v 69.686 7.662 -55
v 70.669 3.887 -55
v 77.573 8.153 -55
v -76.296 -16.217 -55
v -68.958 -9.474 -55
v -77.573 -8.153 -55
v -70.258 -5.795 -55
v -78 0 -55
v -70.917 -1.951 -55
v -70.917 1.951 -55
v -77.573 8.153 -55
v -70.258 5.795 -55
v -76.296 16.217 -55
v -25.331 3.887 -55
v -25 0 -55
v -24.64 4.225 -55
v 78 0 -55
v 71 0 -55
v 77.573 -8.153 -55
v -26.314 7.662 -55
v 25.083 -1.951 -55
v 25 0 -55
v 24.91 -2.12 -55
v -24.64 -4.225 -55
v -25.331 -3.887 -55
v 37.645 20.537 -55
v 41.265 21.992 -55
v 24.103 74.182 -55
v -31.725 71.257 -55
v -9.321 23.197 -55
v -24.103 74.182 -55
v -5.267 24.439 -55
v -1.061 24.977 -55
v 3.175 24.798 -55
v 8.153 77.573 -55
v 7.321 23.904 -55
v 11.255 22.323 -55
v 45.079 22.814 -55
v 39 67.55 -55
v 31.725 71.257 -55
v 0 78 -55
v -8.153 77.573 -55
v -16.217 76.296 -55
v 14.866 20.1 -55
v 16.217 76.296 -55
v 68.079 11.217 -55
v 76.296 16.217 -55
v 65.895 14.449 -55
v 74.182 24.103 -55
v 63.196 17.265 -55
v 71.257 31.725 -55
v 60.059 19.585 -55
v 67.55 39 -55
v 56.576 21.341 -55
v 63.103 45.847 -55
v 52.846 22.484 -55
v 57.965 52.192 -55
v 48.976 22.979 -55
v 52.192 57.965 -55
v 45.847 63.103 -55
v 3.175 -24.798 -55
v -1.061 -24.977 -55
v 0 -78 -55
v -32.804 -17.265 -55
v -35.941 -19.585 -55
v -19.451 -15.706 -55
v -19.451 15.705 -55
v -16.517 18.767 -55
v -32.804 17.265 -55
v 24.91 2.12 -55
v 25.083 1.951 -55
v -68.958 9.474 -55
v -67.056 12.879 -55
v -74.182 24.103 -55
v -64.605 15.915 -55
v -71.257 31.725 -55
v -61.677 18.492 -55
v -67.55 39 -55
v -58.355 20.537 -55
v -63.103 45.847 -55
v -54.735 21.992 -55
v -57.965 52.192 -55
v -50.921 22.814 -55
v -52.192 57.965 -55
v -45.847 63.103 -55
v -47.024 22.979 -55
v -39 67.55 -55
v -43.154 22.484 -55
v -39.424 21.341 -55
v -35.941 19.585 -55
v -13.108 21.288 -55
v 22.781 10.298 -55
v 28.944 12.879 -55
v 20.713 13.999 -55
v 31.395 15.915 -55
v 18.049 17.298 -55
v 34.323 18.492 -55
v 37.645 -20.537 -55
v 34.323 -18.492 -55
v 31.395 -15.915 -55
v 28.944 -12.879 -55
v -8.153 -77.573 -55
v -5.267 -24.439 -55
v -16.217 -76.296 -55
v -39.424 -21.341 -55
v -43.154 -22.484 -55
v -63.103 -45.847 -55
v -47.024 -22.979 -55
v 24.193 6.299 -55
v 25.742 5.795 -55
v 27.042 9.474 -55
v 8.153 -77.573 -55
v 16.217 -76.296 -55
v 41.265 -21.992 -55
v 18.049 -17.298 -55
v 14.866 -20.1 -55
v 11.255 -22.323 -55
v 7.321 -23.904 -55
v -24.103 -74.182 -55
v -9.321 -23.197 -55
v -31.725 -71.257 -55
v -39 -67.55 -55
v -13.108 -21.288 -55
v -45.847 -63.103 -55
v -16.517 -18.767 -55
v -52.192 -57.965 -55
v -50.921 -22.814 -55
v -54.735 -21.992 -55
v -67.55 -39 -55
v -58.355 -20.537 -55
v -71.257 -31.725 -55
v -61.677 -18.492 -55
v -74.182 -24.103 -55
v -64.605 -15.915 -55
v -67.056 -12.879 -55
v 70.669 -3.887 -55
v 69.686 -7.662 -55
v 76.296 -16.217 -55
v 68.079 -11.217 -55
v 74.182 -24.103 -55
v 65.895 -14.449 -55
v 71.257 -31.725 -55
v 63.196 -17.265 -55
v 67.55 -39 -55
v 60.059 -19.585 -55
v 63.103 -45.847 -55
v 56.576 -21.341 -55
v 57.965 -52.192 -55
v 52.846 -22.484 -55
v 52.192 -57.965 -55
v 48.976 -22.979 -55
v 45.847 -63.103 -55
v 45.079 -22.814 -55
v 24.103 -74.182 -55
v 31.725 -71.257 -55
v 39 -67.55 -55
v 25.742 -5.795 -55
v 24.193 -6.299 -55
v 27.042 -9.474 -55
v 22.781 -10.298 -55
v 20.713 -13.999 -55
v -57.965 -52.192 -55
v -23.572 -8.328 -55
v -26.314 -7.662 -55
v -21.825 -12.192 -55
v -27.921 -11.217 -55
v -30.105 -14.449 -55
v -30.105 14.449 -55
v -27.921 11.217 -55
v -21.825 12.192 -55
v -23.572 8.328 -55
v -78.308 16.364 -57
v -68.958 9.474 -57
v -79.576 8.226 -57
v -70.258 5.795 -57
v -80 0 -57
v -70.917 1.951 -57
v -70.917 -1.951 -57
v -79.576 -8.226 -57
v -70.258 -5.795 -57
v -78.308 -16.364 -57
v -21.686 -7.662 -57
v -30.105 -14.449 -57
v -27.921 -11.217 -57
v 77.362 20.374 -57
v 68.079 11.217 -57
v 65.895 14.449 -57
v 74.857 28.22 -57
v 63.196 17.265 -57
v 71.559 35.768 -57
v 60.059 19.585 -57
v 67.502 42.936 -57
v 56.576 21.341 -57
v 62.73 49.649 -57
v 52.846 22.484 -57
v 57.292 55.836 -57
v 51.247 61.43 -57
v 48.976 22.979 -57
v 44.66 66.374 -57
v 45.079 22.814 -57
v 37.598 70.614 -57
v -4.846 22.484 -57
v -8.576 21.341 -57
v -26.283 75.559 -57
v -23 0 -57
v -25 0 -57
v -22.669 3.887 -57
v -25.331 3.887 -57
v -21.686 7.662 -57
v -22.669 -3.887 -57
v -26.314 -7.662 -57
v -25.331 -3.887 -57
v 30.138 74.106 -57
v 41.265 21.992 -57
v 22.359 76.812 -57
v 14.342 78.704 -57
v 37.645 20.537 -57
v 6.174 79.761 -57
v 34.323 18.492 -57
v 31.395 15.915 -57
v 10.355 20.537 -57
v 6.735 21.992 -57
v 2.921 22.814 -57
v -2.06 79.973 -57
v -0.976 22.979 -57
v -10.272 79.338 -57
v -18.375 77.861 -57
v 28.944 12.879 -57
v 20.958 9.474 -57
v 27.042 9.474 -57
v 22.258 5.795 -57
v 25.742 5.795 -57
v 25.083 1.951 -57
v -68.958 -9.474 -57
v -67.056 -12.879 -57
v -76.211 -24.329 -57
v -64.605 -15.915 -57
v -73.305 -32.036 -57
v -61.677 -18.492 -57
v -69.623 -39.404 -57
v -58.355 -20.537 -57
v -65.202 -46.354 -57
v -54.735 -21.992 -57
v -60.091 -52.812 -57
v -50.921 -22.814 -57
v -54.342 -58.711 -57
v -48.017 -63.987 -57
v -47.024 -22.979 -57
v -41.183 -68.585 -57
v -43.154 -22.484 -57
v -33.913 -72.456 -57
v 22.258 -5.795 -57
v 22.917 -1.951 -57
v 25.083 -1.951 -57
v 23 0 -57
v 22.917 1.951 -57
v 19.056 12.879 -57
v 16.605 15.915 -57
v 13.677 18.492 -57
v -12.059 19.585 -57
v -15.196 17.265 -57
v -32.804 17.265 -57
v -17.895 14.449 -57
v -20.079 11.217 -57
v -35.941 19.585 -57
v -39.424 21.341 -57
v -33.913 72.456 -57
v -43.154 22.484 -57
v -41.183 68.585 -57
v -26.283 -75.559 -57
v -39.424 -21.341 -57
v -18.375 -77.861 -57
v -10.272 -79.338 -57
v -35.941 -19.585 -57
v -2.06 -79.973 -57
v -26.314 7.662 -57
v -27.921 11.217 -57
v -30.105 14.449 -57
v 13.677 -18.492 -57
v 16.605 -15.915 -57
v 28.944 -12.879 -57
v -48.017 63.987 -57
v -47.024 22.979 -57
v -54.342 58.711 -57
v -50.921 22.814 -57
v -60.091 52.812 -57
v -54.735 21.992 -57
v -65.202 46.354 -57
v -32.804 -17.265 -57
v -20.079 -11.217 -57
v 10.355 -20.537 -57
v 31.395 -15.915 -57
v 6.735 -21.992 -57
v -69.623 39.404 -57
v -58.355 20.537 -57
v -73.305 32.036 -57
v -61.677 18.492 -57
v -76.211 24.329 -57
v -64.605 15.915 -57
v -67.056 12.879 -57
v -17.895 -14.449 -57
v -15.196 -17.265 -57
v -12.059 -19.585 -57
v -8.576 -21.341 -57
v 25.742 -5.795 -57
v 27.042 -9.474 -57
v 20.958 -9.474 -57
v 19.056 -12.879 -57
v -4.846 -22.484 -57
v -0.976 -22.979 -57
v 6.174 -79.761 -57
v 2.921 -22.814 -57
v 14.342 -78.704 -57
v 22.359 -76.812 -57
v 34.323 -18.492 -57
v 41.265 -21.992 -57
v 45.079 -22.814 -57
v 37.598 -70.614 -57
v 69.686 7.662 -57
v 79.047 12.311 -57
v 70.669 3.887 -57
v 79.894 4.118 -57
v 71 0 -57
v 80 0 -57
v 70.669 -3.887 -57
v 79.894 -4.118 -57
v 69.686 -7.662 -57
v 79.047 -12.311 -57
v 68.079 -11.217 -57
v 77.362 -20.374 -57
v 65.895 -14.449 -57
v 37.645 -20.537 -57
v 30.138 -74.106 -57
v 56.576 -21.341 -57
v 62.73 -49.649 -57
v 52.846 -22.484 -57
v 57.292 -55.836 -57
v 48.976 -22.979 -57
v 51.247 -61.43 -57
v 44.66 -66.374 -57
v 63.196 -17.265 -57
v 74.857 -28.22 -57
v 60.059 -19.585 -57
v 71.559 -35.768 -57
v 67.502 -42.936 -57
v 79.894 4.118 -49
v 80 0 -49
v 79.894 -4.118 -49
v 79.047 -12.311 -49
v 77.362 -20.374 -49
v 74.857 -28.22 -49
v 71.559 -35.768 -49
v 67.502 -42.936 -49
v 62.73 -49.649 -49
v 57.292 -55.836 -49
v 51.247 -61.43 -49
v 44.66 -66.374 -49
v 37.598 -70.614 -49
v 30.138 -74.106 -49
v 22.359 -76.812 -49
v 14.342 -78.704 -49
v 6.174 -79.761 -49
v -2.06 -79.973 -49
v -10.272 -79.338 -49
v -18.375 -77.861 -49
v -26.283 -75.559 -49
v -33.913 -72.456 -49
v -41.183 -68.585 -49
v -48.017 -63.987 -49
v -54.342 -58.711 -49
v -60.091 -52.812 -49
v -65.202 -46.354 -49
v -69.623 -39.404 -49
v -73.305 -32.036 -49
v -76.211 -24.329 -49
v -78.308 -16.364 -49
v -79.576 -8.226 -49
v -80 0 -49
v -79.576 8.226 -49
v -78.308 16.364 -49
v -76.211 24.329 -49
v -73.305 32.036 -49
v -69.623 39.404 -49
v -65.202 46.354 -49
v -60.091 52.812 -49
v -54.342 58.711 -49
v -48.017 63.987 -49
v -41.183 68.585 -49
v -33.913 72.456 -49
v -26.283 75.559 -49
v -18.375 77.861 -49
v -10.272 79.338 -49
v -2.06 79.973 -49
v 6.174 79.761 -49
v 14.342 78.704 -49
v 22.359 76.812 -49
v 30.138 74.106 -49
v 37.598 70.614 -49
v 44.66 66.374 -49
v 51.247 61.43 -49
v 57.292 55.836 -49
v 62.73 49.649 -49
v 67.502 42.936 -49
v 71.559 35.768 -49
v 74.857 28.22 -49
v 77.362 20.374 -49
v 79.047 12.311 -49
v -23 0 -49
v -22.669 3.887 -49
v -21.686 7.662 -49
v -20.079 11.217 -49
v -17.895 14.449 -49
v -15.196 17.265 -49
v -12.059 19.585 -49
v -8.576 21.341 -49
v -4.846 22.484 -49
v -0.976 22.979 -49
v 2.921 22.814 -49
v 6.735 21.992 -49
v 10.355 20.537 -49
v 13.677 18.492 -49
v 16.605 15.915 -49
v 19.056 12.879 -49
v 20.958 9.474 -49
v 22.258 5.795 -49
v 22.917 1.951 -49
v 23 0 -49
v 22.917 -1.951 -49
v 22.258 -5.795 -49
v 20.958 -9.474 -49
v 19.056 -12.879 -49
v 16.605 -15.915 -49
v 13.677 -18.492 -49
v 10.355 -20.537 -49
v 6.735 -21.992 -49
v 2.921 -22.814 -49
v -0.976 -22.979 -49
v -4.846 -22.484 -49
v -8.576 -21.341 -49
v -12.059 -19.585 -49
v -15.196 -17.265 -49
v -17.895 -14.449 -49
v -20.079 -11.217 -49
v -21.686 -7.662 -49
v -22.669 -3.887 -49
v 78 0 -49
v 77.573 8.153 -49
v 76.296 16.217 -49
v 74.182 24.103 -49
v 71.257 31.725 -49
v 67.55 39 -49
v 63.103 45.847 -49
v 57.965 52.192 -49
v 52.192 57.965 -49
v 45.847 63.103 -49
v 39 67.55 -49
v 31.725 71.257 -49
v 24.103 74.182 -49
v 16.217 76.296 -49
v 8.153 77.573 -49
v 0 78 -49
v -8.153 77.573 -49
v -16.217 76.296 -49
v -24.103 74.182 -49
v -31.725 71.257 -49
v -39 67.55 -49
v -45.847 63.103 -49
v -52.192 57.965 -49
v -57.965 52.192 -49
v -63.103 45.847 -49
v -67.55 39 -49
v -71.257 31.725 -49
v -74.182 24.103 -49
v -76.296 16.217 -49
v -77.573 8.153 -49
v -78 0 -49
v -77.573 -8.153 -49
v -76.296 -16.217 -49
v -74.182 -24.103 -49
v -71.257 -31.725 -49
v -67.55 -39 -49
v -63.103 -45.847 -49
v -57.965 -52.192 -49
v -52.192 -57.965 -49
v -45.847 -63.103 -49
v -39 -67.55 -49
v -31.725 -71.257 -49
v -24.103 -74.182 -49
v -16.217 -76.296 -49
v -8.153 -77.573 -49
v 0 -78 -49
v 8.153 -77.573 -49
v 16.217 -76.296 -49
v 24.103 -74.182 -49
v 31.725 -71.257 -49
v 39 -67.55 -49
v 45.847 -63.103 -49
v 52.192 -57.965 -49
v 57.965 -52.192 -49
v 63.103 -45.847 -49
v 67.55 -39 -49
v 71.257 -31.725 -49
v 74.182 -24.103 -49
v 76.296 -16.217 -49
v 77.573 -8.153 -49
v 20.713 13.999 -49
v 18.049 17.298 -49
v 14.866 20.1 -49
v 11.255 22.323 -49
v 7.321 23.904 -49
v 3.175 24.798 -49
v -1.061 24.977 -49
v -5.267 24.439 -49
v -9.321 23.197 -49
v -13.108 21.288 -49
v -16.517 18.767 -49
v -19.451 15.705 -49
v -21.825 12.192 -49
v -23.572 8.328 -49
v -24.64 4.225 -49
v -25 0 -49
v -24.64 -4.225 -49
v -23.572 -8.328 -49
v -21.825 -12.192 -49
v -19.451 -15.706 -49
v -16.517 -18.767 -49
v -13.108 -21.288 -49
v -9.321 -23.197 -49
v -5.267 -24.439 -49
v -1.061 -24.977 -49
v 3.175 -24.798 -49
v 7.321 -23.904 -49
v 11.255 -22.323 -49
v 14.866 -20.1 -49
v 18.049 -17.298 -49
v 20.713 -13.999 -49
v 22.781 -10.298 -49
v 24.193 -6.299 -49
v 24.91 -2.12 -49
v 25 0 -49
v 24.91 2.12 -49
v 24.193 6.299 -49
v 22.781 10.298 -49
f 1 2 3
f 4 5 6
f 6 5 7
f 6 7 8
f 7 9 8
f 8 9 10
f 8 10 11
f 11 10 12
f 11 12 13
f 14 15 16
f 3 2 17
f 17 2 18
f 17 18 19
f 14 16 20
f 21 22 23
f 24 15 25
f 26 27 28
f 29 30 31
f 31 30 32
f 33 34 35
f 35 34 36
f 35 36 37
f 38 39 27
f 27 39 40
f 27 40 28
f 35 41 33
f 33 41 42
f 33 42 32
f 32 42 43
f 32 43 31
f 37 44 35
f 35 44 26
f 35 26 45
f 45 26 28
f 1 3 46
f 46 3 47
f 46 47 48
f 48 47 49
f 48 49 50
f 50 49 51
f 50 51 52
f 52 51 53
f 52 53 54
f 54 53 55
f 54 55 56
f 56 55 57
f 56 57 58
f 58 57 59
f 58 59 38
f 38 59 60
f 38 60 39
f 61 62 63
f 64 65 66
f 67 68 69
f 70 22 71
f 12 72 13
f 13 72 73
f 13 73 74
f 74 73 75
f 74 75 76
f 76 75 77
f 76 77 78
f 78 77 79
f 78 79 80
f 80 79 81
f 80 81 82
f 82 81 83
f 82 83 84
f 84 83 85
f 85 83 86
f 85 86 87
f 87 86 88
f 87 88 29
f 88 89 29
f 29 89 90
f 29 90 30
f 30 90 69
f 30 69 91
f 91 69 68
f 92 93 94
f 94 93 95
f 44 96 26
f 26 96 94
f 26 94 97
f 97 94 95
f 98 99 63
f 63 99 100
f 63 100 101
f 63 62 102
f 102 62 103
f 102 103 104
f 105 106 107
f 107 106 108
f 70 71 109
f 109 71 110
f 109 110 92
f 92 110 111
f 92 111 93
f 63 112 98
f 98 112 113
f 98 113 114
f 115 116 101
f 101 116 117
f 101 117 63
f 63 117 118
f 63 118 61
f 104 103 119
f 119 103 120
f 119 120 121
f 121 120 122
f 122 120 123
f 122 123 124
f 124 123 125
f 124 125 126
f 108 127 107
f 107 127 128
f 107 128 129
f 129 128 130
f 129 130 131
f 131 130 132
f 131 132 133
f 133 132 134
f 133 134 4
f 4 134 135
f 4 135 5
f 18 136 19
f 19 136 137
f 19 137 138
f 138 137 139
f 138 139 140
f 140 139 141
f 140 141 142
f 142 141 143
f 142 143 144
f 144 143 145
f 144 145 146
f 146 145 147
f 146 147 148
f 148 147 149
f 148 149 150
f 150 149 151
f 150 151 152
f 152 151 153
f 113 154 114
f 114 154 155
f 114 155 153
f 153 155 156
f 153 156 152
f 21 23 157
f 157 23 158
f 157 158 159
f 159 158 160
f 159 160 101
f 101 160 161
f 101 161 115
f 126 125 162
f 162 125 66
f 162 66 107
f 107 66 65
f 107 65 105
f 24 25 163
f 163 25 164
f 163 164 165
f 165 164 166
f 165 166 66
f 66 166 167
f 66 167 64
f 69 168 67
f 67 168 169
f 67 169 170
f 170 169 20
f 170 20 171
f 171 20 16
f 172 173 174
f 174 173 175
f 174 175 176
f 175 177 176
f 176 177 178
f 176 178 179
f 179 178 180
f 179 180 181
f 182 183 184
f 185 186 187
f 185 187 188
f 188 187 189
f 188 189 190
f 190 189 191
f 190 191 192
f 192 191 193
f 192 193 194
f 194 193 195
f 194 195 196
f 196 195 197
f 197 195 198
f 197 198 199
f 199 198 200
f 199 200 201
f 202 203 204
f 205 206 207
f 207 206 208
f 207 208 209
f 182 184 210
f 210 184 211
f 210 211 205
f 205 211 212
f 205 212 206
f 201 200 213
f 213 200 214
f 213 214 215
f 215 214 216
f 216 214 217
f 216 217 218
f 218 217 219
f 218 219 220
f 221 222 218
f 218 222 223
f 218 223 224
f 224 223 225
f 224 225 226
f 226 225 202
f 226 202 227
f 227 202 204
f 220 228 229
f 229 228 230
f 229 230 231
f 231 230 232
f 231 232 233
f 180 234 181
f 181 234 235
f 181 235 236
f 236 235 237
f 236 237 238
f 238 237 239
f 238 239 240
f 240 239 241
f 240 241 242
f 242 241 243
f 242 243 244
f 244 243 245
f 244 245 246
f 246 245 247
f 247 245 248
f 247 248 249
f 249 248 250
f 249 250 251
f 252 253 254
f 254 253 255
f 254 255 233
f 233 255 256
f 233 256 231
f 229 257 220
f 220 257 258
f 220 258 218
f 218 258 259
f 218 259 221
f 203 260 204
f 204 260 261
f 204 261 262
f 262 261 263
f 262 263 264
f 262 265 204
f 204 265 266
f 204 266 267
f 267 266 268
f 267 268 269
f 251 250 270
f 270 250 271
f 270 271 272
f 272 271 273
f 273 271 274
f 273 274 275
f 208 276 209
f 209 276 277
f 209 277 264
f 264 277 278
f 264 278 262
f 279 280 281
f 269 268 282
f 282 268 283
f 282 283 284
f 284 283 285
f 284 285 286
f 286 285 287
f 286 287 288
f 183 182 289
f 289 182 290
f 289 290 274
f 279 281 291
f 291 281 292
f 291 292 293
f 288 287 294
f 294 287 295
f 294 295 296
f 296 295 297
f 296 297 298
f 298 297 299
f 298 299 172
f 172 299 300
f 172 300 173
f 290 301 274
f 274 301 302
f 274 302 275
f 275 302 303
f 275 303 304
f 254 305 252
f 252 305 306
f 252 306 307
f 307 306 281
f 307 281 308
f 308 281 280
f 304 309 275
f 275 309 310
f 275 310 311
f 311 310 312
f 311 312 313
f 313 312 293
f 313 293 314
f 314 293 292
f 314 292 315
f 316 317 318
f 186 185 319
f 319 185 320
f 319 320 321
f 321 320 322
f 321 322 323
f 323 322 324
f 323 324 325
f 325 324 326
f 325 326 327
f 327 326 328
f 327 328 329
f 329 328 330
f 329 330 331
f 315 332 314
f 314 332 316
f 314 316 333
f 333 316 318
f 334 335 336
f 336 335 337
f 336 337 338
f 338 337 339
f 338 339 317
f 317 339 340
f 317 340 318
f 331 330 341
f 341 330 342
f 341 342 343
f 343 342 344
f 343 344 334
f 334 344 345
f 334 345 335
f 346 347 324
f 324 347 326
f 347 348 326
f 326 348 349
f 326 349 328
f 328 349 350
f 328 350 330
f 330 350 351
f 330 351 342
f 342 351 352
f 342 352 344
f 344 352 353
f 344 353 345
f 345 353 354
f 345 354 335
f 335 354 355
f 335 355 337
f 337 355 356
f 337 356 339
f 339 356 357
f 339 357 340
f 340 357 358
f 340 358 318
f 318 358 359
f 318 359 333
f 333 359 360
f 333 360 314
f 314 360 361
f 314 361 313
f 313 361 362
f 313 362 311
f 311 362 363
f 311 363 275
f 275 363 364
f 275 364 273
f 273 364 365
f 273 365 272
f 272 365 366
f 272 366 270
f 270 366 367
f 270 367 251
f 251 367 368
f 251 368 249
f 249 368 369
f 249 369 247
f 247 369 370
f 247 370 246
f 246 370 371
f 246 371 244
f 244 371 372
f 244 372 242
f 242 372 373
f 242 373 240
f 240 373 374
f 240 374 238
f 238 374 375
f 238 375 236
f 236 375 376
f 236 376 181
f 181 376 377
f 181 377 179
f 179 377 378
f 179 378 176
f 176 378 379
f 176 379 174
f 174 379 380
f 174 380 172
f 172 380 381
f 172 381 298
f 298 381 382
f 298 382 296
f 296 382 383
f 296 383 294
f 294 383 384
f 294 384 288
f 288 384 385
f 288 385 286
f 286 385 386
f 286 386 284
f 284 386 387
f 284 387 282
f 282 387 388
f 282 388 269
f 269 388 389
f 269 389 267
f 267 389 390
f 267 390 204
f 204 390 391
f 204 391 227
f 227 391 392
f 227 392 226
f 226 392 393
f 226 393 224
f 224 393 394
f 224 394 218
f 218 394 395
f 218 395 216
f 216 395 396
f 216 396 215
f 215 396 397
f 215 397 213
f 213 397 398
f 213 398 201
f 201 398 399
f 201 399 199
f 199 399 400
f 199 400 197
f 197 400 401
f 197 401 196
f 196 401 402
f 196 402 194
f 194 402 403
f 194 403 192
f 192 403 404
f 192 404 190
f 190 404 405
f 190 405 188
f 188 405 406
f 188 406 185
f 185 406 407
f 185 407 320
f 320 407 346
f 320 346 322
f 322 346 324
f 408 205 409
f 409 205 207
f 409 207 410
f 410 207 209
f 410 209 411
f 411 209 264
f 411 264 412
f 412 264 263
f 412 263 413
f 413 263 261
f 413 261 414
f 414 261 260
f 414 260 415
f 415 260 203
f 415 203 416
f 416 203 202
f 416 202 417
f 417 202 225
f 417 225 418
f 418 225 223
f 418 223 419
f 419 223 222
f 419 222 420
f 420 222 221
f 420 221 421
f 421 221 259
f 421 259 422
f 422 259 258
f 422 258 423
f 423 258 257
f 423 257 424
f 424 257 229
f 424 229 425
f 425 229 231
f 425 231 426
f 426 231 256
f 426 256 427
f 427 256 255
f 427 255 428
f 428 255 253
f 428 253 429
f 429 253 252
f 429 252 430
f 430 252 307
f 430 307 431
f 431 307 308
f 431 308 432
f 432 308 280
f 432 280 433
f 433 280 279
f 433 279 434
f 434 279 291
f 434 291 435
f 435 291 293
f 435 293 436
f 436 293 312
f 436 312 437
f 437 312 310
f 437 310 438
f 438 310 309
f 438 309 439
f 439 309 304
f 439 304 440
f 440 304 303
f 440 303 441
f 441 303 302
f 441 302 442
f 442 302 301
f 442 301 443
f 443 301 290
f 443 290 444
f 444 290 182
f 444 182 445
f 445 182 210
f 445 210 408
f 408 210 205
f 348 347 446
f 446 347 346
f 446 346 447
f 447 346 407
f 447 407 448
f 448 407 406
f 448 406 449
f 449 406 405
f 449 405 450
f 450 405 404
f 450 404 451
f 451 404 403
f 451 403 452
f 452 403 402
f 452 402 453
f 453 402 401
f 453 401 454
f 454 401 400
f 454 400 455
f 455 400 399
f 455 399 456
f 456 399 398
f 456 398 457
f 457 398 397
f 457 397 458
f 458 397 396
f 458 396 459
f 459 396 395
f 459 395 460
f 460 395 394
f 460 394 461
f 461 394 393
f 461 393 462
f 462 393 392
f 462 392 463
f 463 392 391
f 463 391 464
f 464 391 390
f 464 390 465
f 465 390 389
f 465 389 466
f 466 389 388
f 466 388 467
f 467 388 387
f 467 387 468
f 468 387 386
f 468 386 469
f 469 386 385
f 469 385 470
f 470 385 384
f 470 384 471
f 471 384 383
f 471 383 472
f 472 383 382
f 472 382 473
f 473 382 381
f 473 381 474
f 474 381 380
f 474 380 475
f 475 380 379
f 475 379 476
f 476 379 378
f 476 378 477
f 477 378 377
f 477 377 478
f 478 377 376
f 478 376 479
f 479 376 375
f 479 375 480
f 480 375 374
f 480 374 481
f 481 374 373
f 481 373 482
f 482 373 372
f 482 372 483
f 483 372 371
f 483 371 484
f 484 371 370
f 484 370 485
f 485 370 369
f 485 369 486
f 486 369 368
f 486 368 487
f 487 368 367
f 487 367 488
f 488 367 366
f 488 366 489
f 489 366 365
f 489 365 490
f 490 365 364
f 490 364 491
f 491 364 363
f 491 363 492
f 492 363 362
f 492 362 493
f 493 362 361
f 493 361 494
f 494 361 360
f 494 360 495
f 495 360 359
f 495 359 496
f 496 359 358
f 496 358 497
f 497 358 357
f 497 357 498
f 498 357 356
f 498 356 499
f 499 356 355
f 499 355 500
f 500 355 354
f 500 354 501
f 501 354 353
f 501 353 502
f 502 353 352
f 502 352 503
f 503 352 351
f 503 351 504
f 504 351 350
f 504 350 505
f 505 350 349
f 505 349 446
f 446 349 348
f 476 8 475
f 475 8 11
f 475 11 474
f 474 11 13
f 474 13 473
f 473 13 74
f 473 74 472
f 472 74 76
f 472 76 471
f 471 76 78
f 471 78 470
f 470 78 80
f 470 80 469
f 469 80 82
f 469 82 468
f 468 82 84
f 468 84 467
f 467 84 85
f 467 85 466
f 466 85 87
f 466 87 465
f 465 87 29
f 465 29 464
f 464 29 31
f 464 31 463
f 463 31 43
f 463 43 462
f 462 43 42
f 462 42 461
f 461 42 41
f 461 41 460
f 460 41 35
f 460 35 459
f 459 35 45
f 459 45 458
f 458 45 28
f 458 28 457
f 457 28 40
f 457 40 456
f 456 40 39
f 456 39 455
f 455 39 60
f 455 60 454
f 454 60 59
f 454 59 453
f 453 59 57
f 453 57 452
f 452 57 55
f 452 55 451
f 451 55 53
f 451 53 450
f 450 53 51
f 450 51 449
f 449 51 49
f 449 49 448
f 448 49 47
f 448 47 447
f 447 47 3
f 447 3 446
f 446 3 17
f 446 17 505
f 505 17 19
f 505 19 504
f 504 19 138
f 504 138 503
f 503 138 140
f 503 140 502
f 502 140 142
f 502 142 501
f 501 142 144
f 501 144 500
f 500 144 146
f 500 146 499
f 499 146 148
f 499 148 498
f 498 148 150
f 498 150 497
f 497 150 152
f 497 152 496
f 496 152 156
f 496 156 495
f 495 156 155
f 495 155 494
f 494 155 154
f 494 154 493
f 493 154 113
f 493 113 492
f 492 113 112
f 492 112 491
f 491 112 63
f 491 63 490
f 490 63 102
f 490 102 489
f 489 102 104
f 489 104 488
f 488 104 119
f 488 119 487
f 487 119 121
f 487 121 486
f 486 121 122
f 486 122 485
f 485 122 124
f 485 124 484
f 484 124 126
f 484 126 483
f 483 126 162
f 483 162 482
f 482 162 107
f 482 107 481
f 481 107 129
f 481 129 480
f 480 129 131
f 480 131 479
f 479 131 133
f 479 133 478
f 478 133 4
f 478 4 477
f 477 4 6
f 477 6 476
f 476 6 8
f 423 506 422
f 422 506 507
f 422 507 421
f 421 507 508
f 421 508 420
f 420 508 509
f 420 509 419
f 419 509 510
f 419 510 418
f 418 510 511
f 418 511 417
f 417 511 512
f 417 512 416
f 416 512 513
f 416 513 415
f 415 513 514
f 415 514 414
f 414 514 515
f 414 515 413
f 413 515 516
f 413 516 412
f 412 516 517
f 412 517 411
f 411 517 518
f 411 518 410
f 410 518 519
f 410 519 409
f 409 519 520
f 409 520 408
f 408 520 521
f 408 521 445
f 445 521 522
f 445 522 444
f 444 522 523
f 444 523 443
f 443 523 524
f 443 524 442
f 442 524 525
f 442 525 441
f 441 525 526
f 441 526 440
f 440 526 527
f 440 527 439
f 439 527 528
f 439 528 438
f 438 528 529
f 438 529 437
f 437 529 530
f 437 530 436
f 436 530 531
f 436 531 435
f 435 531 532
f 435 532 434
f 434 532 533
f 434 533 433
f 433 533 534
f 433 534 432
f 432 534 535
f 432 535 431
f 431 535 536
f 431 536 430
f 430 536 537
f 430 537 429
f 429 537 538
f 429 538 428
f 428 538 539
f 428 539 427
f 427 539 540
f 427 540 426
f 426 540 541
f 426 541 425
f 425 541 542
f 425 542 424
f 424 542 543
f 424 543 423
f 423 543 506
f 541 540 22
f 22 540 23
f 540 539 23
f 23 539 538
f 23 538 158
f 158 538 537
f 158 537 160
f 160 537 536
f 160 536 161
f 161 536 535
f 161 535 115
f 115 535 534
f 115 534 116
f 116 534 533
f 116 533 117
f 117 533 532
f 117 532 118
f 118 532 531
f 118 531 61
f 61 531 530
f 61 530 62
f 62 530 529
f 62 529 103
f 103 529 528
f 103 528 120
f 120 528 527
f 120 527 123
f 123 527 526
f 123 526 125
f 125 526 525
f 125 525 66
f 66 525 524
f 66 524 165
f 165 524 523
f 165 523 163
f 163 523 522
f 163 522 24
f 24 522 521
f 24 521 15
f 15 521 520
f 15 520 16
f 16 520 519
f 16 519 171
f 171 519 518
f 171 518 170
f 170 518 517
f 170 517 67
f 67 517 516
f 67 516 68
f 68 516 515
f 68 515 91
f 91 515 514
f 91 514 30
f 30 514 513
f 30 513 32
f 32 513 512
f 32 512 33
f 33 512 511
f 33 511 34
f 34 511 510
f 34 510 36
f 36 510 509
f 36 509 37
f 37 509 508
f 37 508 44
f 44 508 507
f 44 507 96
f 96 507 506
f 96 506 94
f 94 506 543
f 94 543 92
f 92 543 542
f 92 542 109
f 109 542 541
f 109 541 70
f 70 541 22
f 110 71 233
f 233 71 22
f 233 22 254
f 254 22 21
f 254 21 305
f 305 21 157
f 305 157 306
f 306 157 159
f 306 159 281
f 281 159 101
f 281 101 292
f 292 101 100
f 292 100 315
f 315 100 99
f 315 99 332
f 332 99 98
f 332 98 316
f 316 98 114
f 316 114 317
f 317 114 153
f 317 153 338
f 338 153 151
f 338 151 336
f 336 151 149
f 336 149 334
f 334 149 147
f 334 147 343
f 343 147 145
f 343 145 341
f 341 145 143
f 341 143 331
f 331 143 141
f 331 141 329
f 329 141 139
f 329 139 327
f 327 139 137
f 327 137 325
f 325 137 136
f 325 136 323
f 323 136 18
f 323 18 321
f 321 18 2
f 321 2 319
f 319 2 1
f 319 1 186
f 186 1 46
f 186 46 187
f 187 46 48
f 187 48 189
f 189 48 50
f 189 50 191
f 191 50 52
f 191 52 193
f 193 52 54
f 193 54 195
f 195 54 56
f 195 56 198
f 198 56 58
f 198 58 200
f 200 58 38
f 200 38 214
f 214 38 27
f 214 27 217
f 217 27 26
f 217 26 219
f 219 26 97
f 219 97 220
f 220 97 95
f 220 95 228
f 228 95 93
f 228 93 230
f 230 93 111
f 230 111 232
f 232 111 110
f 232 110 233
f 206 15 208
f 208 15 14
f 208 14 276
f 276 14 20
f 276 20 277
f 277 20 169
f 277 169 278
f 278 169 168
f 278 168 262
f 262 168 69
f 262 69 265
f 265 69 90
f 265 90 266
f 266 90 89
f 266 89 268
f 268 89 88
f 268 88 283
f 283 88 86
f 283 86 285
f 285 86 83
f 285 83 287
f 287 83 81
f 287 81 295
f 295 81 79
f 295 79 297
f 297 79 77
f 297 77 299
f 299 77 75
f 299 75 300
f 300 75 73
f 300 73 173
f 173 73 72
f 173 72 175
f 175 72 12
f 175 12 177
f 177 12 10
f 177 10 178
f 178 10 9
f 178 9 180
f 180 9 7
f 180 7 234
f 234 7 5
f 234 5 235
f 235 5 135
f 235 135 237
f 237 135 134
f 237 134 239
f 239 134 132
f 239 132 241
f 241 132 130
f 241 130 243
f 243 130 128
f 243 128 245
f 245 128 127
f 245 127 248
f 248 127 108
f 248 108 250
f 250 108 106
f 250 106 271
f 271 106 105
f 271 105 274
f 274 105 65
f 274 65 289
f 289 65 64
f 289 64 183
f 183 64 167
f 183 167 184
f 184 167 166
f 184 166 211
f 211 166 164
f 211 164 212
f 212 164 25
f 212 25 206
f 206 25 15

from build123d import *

# Parameters (mm, degrees)
PLENUM_BACKPLATE_START  = -57
SKETCH_1_R              = 80
SKETCH_1_R_2            = 23
PLENUM_BACKPLATE_DEPTH  = 2
PLENUM_OUTER_WALL_START = -57
SKETCH_2_R              = 80
SKETCH_2_R_2            = 78
PLENUM_OUTER_WALL_DEPTH = 8
PLENUM_INNER_WALL_START = -57
SKETCH_3_R              = 25
SKETCH_3_R_2            = 23
PLENUM_INNER_WALL_DEPTH = 8
SKETCH_4_R              = 23
THROUGH_HOLES_DEPTH     = 100


with BuildPart() as part:
    # Эскиз1 → Plenum_backplate (new body)
    with BuildSketch(Plane.XY.offset(PLENUM_BACKPLATE_START)):
        Circle(SKETCH_1_R)
        Circle(SKETCH_1_R_2, mode=Mode.SUBTRACT)
    extrude(amount=PLENUM_BACKPLATE_DEPTH)

    # Эскиз2 → Plenum_outer_wall (add)
    with BuildSketch(Plane.XY.offset(PLENUM_OUTER_WALL_START)):
        Circle(SKETCH_2_R)
        Circle(SKETCH_2_R_2, mode=Mode.SUBTRACT)
    extrude(amount=PLENUM_OUTER_WALL_DEPTH)

    # Эскиз3 → Plenum_inner_wall (add)
    with BuildSketch(Plane.XY.offset(PLENUM_INNER_WALL_START)):
        Circle(SKETCH_3_R)
        Circle(SKETCH_3_R_2, mode=Mode.SUBTRACT)
    extrude(amount=PLENUM_INNER_WALL_DEPTH)

    # Эскиз4 → Through_holes (cut, symmetric)
    with BuildSketch(Plane.XY):
        with Locations((-48, 0)):
            Circle(SKETCH_4_R)
        with Locations((48, 0)):
            Circle(SKETCH_4_R)
    extrude(amount=THROUGH_HOLES_DEPTH, both=True, mode=Mode.SUBTRACT)


solid = part.part
